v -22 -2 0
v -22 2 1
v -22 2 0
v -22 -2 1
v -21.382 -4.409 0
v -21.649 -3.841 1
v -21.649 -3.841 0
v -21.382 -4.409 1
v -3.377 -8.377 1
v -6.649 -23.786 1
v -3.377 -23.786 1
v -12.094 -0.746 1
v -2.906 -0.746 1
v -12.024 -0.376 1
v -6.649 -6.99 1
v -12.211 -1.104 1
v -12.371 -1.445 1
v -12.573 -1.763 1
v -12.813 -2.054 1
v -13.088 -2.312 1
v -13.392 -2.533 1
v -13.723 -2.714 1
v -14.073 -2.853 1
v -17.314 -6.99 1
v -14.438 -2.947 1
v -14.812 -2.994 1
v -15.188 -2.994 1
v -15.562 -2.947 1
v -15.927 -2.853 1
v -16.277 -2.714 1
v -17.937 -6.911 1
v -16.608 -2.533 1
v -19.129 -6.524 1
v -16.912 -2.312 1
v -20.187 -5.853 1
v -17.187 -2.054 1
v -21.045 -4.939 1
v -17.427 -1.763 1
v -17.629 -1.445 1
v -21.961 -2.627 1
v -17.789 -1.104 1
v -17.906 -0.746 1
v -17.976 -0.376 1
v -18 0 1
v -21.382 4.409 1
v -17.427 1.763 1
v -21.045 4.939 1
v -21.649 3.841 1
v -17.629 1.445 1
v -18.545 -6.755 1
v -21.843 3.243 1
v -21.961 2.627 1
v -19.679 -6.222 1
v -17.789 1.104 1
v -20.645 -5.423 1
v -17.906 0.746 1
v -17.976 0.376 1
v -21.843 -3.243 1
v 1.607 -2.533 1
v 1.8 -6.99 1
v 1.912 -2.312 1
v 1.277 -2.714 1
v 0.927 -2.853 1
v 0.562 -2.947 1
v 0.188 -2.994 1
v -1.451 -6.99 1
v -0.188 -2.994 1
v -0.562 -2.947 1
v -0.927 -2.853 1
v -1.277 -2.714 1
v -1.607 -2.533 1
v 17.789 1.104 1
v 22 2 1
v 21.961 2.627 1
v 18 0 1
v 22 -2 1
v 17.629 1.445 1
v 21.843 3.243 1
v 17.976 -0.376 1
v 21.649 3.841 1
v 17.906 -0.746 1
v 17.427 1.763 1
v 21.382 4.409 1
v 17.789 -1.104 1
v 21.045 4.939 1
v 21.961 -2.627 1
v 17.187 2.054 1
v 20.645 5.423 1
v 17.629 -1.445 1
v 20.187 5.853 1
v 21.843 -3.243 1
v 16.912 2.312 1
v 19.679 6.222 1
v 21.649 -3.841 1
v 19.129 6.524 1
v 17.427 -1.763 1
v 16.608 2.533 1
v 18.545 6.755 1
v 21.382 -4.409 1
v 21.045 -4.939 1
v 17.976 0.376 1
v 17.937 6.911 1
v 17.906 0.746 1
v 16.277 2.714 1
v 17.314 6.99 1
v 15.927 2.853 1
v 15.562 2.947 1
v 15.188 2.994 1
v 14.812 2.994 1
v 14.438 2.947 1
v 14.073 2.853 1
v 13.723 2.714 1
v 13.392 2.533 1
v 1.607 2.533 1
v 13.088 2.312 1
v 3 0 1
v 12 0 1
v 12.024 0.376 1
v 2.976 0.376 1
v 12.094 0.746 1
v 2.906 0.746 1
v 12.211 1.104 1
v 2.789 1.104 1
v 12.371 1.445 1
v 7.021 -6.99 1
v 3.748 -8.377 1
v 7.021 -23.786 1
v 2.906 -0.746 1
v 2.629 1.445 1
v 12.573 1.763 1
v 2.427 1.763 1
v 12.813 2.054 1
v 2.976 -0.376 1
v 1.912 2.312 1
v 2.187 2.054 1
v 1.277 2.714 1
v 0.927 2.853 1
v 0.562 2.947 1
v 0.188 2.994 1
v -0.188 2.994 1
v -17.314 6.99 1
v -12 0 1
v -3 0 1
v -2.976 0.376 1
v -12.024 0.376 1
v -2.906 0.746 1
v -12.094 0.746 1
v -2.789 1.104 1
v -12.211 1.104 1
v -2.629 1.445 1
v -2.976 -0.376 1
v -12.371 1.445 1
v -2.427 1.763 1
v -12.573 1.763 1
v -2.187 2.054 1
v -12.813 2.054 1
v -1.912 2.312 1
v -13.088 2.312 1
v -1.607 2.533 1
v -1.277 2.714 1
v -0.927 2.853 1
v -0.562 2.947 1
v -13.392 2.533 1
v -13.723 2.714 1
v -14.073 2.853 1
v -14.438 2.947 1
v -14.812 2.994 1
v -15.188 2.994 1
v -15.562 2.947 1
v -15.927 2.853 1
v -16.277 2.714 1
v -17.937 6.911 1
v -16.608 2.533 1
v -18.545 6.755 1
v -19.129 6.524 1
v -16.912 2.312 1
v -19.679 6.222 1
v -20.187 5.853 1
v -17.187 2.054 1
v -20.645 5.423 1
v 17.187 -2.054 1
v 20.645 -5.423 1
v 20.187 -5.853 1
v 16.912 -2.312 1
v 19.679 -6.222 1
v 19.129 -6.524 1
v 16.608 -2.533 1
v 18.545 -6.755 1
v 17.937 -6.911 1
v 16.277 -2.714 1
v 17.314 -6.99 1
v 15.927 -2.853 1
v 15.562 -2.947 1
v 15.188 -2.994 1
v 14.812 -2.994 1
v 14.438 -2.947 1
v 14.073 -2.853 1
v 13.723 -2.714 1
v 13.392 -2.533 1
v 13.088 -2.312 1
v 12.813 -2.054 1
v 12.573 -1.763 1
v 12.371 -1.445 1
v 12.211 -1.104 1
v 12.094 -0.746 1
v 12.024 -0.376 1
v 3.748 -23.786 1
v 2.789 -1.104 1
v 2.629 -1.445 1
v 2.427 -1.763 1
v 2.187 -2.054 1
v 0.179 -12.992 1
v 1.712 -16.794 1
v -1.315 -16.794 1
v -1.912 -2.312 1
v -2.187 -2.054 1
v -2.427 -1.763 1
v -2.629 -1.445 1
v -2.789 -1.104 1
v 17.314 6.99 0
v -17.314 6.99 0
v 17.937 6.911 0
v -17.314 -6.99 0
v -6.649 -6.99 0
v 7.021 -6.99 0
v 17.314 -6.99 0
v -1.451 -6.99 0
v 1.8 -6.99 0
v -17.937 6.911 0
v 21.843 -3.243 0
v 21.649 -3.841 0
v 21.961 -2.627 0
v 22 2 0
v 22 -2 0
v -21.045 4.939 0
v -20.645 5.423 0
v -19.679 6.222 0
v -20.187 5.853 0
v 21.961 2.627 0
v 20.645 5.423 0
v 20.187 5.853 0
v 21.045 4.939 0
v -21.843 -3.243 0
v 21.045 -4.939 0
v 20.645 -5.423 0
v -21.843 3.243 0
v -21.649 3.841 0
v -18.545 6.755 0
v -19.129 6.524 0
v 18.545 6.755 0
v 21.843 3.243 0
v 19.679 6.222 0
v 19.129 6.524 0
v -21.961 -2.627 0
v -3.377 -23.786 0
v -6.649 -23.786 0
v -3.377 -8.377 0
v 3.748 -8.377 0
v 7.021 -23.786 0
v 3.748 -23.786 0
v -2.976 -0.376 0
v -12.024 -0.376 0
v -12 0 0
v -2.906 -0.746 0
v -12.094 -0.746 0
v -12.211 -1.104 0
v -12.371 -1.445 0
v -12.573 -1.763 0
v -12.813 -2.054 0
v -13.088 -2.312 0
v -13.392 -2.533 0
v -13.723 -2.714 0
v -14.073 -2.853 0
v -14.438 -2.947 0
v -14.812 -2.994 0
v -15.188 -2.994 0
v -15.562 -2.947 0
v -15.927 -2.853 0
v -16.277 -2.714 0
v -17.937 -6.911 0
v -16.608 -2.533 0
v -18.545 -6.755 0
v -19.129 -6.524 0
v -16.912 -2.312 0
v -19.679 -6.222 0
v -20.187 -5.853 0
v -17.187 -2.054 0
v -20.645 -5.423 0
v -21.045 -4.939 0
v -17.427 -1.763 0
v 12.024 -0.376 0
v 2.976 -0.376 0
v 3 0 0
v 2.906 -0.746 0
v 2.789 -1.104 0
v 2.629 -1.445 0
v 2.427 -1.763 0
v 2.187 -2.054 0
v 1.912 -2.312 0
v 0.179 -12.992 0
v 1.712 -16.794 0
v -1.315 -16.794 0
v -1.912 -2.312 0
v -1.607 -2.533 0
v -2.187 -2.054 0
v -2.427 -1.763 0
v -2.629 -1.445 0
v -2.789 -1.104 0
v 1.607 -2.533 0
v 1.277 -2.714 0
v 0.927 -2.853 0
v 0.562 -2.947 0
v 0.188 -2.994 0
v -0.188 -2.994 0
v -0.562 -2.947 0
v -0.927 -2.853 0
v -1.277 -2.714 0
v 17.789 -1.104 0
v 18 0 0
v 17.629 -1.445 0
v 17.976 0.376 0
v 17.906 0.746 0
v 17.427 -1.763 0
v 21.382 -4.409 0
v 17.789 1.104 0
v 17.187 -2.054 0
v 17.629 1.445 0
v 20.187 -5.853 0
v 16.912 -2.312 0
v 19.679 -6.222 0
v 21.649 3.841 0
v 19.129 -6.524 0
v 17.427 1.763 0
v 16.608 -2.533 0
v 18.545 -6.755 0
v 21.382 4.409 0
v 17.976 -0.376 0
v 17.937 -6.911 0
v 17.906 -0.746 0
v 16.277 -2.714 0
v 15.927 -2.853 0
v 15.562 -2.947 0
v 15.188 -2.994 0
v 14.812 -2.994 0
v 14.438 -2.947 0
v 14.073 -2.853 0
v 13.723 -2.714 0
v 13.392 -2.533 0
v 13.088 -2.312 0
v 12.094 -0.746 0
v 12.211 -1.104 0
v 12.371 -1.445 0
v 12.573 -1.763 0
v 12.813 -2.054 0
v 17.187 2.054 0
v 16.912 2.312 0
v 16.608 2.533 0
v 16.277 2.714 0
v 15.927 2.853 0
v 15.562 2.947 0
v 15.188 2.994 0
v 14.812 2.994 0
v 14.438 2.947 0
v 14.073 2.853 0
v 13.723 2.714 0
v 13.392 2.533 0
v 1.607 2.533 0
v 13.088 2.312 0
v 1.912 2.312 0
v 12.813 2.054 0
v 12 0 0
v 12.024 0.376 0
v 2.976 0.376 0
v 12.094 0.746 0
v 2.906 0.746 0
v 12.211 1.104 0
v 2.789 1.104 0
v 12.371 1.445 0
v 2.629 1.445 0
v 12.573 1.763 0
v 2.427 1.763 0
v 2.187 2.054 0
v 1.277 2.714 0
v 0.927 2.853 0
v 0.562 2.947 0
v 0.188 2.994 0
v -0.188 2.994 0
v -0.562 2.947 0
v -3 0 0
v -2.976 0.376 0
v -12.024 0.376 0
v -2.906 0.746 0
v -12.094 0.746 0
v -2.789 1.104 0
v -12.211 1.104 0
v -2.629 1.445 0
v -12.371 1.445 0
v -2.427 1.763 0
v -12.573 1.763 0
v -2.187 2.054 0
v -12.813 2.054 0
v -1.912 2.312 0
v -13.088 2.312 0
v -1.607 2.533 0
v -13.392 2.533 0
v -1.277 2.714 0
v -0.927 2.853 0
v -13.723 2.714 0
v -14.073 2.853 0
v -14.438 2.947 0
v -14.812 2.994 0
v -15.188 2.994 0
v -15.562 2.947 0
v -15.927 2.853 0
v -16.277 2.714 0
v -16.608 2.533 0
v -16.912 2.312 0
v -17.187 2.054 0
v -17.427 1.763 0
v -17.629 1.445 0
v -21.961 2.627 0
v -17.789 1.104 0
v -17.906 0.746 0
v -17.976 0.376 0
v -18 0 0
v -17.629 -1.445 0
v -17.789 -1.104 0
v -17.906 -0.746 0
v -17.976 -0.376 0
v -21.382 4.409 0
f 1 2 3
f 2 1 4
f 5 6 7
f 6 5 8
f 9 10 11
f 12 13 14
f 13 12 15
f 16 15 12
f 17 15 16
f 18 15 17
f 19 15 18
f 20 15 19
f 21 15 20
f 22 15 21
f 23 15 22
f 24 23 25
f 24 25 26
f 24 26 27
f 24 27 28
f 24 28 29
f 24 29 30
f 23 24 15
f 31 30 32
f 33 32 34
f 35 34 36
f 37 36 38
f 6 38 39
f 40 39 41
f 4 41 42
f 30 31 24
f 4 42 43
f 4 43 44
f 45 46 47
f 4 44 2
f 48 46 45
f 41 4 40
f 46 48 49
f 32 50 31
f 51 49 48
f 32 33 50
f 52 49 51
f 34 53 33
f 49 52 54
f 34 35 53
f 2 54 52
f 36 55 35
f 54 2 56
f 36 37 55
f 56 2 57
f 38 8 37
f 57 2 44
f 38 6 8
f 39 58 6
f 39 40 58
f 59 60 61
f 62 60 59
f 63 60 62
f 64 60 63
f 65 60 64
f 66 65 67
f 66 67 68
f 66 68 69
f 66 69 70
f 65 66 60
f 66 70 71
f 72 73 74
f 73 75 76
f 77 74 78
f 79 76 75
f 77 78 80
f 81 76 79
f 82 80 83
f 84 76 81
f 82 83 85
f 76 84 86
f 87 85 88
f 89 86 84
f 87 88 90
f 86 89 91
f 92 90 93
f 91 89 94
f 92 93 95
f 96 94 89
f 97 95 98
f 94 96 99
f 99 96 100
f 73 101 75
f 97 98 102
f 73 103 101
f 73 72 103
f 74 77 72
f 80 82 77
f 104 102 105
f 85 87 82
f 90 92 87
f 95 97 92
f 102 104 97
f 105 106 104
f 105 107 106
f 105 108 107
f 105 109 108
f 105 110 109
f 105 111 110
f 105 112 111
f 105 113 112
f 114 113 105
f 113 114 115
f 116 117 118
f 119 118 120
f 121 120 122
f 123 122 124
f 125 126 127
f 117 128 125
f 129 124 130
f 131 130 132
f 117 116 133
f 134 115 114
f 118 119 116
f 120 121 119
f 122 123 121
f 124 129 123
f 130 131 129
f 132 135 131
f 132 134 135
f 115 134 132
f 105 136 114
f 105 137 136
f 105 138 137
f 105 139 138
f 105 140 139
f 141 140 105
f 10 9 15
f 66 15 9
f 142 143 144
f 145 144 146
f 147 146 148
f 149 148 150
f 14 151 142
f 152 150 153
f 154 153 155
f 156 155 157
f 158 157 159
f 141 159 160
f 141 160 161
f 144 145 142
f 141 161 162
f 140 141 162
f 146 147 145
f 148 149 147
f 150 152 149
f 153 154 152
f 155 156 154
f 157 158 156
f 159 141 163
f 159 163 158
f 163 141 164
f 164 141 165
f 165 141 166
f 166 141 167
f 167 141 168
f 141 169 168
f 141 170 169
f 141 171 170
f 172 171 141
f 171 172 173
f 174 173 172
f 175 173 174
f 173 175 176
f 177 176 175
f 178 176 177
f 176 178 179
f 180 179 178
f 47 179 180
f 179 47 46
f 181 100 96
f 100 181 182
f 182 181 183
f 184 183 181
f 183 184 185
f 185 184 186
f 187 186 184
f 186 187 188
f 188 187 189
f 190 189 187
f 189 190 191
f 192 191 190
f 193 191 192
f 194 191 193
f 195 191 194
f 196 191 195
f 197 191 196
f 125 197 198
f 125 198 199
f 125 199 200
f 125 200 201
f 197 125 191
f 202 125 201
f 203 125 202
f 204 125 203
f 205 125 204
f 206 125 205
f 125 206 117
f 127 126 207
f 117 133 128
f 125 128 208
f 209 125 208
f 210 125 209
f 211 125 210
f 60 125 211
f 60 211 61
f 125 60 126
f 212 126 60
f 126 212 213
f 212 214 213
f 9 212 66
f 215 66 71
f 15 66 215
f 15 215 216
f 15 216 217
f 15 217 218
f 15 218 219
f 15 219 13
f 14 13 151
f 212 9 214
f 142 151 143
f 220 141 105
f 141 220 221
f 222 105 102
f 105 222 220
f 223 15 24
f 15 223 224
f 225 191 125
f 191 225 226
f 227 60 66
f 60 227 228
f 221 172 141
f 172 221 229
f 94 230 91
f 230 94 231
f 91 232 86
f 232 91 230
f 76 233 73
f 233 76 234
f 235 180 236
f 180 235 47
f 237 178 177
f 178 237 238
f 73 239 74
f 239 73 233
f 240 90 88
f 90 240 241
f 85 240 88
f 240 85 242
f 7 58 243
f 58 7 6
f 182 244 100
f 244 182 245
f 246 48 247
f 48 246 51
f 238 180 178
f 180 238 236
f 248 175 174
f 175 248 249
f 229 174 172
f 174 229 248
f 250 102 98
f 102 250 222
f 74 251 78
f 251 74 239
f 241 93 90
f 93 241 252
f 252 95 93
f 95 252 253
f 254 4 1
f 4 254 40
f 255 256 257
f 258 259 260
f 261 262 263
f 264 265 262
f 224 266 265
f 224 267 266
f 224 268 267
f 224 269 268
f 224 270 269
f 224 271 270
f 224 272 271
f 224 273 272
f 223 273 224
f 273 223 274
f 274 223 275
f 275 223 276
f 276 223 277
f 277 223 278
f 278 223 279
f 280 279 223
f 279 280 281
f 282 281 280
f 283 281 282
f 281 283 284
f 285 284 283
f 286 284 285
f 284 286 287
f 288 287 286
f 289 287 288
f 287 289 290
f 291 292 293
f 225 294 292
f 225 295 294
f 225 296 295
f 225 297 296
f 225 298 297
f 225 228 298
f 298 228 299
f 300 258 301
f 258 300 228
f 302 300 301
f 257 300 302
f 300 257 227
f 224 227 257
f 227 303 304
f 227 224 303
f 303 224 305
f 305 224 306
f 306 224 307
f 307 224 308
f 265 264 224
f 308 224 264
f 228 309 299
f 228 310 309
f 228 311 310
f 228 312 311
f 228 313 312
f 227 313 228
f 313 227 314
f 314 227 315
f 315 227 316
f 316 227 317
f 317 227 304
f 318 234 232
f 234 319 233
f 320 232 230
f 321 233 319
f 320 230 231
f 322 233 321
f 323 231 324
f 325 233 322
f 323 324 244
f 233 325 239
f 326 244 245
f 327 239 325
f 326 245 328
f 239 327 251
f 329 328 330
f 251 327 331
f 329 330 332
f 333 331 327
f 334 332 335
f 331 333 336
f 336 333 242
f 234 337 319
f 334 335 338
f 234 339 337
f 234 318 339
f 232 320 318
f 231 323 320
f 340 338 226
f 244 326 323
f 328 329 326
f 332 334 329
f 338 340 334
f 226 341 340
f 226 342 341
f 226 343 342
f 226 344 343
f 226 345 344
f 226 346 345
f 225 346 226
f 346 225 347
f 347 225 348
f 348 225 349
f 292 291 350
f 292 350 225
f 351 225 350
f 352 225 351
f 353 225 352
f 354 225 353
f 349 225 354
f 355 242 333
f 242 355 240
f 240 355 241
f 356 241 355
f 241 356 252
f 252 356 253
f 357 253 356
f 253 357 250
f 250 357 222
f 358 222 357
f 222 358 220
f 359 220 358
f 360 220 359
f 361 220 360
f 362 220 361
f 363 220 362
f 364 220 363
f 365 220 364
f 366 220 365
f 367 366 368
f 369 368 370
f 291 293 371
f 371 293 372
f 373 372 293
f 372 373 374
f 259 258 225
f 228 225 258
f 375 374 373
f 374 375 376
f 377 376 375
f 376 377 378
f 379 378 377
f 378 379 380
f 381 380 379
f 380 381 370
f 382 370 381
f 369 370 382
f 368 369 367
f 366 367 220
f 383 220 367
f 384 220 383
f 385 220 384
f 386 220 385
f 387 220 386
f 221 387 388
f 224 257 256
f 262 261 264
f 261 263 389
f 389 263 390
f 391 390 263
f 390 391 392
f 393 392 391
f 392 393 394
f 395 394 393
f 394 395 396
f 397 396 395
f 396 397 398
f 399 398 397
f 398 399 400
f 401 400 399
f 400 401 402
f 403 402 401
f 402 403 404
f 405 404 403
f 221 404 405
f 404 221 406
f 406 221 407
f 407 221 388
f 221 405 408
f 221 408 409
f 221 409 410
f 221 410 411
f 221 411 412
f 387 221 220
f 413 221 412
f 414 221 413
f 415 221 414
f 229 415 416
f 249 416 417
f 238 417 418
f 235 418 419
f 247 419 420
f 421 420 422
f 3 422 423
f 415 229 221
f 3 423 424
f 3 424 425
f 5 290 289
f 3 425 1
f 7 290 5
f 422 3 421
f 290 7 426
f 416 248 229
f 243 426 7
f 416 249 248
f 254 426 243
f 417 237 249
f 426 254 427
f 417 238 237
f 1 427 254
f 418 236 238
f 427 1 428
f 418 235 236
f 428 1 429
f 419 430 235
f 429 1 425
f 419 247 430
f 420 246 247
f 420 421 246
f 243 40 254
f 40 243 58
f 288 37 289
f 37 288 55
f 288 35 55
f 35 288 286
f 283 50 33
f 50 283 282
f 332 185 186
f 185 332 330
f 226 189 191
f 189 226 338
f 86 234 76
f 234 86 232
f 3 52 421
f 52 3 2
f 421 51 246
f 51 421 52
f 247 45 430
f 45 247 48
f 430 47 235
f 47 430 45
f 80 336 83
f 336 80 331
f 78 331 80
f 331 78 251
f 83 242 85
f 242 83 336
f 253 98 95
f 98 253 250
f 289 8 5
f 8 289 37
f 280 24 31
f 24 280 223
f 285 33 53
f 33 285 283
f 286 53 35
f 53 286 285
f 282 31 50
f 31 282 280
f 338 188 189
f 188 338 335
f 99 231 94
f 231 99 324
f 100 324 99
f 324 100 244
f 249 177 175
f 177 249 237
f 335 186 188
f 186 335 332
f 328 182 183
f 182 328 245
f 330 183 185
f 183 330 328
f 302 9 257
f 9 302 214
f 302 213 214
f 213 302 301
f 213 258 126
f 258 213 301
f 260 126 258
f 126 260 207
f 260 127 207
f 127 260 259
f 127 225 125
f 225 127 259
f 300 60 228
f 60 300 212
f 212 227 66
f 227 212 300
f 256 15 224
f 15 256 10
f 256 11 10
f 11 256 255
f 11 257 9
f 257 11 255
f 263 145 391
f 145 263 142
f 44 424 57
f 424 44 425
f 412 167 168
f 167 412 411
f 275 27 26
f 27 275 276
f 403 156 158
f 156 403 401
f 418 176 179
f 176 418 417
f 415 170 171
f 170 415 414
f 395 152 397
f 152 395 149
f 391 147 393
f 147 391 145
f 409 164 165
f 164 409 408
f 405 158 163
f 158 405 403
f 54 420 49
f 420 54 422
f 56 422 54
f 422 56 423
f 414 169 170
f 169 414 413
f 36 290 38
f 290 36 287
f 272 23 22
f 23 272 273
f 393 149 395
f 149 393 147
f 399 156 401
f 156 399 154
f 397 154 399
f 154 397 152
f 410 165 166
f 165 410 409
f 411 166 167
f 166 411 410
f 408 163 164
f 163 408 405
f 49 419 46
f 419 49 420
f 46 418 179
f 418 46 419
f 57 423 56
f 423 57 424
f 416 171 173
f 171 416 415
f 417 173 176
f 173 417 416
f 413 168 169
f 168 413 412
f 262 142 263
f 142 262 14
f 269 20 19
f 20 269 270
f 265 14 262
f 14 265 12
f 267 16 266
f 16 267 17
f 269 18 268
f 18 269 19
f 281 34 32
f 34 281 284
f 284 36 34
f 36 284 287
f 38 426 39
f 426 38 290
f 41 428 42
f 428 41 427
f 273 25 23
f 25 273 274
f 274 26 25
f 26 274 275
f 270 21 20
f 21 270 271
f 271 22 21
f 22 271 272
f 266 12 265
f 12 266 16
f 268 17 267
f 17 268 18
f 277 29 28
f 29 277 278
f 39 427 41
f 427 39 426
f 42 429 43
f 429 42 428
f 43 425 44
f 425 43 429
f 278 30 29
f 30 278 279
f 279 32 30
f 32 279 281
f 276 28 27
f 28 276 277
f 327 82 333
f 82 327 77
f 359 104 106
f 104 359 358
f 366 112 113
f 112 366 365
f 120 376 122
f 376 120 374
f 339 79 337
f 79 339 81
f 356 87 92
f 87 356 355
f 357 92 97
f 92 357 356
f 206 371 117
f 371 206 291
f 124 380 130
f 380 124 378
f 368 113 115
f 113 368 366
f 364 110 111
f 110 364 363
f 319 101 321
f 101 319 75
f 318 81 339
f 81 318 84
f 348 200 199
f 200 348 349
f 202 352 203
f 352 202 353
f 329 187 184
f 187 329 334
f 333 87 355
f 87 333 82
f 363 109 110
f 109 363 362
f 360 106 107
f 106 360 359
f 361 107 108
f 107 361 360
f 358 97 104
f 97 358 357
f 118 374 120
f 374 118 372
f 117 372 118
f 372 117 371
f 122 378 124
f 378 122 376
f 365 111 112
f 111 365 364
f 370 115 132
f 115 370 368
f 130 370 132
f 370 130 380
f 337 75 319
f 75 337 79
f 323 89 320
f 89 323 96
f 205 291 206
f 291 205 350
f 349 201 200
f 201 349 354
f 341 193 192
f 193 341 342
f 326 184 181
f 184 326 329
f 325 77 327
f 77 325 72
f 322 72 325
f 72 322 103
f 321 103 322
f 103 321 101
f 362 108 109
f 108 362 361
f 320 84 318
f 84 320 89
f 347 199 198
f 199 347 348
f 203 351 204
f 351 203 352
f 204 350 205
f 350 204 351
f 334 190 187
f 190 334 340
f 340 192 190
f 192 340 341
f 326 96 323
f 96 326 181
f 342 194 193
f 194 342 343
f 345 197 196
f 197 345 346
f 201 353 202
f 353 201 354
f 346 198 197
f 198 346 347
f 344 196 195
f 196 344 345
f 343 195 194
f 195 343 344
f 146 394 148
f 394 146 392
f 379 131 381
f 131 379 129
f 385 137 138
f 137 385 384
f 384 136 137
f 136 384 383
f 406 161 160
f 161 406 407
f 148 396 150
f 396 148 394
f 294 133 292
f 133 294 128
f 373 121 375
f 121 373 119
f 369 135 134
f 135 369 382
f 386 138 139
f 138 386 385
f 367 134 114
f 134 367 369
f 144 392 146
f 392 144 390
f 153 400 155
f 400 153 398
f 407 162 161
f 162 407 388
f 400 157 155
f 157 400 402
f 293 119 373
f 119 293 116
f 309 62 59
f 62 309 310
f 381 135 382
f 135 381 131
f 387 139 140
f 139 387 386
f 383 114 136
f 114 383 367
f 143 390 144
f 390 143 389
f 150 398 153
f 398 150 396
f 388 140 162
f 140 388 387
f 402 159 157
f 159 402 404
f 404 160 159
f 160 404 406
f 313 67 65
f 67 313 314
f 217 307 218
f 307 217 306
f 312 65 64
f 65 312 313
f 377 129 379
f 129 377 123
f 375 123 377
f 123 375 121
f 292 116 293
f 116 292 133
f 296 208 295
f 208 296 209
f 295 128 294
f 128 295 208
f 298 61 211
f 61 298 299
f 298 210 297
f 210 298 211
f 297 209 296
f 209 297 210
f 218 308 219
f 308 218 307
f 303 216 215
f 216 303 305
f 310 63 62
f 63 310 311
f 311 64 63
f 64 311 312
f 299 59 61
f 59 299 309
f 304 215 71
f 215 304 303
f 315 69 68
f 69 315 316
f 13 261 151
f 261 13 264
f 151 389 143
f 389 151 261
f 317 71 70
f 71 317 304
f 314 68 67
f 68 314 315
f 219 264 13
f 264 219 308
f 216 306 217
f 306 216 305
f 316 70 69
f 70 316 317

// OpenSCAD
$fn = 50;


difference() {
	union() {
		translate(v = [0, 0, 0]) {
			rotate(a = [0, 0, 0]) {
				hull() {
					translate(v = [-17.0000000000, 2.0000000000, 0]) {
						rotate(a = [0, 0, 0]) {
							translate(v = [0, 0, 0]) {
								rotate(a = [0, 0, 0]) {
									cylinder(h = 1, r = 5);
								}
							}
						}
					}
					translate(v = [17.0000000000, 2.0000000000, 0]) {
						rotate(a = [0, 0, 0]) {
							translate(v = [0, 0, 0]) {
								rotate(a = [0, 0, 0]) {
									cylinder(h = 1, r = 5);
								}
							}
						}
					}
					translate(v = [-17.0000000000, -2.0000000000, 0]) {
						rotate(a = [0, 0, 0]) {
							translate(v = [0, 0, 0]) {
								rotate(a = [0, 0, 0]) {
									cylinder(h = 1, r = 5);
								}
							}
						}
					}
					translate(v = [17.0000000000, -2.0000000000, 0]) {
						rotate(a = [0, 0, 0]) {
							translate(v = [0, 0, 0]) {
								rotate(a = [0, 0, 0]) {
									cylinder(h = 1, r = 5);
								}
							}
						}
					}
				}
			}
		}
		translate(v = [0, -5, 0]) {
			rotate(a = [0, 0, 0]) {
				linear_extrude(height = 1) {
					text(font = "DejaVu Sans Mono:style=Bold", halign = "center", size = 19.0000000000, text = "M", valign = "top");
				}
			}
		}
	}
	union() {
		translate(v = [-15.0000000000, 0.0000000000, -125.0000000000]) {
			rotate(a = [0, 0, 0]) {
				cylinder(h = 250, r = 3.0000000000);
			}
		}
		translate(v = [15.0000000000, 0.0000000000, -125.0000000000]) {
			rotate(a = [0, 0, 0]) {
				cylinder(h = 250, r = 3.0000000000);
			}
		}
		translate(v = [15.0000000000, 0.0000000000, -125.0000000000]) {
			rotate(a = [0, 0, 0]) {
				cylinder(h = 250, r = 3.0000000000);
			}
		}
		translate(v = [0, 0, -125.0000000000]) {
			rotate(a = [0, 0, 0]) {
				cylinder(h = 250, r = 3.0000000000);
			}
		}
	}
}
